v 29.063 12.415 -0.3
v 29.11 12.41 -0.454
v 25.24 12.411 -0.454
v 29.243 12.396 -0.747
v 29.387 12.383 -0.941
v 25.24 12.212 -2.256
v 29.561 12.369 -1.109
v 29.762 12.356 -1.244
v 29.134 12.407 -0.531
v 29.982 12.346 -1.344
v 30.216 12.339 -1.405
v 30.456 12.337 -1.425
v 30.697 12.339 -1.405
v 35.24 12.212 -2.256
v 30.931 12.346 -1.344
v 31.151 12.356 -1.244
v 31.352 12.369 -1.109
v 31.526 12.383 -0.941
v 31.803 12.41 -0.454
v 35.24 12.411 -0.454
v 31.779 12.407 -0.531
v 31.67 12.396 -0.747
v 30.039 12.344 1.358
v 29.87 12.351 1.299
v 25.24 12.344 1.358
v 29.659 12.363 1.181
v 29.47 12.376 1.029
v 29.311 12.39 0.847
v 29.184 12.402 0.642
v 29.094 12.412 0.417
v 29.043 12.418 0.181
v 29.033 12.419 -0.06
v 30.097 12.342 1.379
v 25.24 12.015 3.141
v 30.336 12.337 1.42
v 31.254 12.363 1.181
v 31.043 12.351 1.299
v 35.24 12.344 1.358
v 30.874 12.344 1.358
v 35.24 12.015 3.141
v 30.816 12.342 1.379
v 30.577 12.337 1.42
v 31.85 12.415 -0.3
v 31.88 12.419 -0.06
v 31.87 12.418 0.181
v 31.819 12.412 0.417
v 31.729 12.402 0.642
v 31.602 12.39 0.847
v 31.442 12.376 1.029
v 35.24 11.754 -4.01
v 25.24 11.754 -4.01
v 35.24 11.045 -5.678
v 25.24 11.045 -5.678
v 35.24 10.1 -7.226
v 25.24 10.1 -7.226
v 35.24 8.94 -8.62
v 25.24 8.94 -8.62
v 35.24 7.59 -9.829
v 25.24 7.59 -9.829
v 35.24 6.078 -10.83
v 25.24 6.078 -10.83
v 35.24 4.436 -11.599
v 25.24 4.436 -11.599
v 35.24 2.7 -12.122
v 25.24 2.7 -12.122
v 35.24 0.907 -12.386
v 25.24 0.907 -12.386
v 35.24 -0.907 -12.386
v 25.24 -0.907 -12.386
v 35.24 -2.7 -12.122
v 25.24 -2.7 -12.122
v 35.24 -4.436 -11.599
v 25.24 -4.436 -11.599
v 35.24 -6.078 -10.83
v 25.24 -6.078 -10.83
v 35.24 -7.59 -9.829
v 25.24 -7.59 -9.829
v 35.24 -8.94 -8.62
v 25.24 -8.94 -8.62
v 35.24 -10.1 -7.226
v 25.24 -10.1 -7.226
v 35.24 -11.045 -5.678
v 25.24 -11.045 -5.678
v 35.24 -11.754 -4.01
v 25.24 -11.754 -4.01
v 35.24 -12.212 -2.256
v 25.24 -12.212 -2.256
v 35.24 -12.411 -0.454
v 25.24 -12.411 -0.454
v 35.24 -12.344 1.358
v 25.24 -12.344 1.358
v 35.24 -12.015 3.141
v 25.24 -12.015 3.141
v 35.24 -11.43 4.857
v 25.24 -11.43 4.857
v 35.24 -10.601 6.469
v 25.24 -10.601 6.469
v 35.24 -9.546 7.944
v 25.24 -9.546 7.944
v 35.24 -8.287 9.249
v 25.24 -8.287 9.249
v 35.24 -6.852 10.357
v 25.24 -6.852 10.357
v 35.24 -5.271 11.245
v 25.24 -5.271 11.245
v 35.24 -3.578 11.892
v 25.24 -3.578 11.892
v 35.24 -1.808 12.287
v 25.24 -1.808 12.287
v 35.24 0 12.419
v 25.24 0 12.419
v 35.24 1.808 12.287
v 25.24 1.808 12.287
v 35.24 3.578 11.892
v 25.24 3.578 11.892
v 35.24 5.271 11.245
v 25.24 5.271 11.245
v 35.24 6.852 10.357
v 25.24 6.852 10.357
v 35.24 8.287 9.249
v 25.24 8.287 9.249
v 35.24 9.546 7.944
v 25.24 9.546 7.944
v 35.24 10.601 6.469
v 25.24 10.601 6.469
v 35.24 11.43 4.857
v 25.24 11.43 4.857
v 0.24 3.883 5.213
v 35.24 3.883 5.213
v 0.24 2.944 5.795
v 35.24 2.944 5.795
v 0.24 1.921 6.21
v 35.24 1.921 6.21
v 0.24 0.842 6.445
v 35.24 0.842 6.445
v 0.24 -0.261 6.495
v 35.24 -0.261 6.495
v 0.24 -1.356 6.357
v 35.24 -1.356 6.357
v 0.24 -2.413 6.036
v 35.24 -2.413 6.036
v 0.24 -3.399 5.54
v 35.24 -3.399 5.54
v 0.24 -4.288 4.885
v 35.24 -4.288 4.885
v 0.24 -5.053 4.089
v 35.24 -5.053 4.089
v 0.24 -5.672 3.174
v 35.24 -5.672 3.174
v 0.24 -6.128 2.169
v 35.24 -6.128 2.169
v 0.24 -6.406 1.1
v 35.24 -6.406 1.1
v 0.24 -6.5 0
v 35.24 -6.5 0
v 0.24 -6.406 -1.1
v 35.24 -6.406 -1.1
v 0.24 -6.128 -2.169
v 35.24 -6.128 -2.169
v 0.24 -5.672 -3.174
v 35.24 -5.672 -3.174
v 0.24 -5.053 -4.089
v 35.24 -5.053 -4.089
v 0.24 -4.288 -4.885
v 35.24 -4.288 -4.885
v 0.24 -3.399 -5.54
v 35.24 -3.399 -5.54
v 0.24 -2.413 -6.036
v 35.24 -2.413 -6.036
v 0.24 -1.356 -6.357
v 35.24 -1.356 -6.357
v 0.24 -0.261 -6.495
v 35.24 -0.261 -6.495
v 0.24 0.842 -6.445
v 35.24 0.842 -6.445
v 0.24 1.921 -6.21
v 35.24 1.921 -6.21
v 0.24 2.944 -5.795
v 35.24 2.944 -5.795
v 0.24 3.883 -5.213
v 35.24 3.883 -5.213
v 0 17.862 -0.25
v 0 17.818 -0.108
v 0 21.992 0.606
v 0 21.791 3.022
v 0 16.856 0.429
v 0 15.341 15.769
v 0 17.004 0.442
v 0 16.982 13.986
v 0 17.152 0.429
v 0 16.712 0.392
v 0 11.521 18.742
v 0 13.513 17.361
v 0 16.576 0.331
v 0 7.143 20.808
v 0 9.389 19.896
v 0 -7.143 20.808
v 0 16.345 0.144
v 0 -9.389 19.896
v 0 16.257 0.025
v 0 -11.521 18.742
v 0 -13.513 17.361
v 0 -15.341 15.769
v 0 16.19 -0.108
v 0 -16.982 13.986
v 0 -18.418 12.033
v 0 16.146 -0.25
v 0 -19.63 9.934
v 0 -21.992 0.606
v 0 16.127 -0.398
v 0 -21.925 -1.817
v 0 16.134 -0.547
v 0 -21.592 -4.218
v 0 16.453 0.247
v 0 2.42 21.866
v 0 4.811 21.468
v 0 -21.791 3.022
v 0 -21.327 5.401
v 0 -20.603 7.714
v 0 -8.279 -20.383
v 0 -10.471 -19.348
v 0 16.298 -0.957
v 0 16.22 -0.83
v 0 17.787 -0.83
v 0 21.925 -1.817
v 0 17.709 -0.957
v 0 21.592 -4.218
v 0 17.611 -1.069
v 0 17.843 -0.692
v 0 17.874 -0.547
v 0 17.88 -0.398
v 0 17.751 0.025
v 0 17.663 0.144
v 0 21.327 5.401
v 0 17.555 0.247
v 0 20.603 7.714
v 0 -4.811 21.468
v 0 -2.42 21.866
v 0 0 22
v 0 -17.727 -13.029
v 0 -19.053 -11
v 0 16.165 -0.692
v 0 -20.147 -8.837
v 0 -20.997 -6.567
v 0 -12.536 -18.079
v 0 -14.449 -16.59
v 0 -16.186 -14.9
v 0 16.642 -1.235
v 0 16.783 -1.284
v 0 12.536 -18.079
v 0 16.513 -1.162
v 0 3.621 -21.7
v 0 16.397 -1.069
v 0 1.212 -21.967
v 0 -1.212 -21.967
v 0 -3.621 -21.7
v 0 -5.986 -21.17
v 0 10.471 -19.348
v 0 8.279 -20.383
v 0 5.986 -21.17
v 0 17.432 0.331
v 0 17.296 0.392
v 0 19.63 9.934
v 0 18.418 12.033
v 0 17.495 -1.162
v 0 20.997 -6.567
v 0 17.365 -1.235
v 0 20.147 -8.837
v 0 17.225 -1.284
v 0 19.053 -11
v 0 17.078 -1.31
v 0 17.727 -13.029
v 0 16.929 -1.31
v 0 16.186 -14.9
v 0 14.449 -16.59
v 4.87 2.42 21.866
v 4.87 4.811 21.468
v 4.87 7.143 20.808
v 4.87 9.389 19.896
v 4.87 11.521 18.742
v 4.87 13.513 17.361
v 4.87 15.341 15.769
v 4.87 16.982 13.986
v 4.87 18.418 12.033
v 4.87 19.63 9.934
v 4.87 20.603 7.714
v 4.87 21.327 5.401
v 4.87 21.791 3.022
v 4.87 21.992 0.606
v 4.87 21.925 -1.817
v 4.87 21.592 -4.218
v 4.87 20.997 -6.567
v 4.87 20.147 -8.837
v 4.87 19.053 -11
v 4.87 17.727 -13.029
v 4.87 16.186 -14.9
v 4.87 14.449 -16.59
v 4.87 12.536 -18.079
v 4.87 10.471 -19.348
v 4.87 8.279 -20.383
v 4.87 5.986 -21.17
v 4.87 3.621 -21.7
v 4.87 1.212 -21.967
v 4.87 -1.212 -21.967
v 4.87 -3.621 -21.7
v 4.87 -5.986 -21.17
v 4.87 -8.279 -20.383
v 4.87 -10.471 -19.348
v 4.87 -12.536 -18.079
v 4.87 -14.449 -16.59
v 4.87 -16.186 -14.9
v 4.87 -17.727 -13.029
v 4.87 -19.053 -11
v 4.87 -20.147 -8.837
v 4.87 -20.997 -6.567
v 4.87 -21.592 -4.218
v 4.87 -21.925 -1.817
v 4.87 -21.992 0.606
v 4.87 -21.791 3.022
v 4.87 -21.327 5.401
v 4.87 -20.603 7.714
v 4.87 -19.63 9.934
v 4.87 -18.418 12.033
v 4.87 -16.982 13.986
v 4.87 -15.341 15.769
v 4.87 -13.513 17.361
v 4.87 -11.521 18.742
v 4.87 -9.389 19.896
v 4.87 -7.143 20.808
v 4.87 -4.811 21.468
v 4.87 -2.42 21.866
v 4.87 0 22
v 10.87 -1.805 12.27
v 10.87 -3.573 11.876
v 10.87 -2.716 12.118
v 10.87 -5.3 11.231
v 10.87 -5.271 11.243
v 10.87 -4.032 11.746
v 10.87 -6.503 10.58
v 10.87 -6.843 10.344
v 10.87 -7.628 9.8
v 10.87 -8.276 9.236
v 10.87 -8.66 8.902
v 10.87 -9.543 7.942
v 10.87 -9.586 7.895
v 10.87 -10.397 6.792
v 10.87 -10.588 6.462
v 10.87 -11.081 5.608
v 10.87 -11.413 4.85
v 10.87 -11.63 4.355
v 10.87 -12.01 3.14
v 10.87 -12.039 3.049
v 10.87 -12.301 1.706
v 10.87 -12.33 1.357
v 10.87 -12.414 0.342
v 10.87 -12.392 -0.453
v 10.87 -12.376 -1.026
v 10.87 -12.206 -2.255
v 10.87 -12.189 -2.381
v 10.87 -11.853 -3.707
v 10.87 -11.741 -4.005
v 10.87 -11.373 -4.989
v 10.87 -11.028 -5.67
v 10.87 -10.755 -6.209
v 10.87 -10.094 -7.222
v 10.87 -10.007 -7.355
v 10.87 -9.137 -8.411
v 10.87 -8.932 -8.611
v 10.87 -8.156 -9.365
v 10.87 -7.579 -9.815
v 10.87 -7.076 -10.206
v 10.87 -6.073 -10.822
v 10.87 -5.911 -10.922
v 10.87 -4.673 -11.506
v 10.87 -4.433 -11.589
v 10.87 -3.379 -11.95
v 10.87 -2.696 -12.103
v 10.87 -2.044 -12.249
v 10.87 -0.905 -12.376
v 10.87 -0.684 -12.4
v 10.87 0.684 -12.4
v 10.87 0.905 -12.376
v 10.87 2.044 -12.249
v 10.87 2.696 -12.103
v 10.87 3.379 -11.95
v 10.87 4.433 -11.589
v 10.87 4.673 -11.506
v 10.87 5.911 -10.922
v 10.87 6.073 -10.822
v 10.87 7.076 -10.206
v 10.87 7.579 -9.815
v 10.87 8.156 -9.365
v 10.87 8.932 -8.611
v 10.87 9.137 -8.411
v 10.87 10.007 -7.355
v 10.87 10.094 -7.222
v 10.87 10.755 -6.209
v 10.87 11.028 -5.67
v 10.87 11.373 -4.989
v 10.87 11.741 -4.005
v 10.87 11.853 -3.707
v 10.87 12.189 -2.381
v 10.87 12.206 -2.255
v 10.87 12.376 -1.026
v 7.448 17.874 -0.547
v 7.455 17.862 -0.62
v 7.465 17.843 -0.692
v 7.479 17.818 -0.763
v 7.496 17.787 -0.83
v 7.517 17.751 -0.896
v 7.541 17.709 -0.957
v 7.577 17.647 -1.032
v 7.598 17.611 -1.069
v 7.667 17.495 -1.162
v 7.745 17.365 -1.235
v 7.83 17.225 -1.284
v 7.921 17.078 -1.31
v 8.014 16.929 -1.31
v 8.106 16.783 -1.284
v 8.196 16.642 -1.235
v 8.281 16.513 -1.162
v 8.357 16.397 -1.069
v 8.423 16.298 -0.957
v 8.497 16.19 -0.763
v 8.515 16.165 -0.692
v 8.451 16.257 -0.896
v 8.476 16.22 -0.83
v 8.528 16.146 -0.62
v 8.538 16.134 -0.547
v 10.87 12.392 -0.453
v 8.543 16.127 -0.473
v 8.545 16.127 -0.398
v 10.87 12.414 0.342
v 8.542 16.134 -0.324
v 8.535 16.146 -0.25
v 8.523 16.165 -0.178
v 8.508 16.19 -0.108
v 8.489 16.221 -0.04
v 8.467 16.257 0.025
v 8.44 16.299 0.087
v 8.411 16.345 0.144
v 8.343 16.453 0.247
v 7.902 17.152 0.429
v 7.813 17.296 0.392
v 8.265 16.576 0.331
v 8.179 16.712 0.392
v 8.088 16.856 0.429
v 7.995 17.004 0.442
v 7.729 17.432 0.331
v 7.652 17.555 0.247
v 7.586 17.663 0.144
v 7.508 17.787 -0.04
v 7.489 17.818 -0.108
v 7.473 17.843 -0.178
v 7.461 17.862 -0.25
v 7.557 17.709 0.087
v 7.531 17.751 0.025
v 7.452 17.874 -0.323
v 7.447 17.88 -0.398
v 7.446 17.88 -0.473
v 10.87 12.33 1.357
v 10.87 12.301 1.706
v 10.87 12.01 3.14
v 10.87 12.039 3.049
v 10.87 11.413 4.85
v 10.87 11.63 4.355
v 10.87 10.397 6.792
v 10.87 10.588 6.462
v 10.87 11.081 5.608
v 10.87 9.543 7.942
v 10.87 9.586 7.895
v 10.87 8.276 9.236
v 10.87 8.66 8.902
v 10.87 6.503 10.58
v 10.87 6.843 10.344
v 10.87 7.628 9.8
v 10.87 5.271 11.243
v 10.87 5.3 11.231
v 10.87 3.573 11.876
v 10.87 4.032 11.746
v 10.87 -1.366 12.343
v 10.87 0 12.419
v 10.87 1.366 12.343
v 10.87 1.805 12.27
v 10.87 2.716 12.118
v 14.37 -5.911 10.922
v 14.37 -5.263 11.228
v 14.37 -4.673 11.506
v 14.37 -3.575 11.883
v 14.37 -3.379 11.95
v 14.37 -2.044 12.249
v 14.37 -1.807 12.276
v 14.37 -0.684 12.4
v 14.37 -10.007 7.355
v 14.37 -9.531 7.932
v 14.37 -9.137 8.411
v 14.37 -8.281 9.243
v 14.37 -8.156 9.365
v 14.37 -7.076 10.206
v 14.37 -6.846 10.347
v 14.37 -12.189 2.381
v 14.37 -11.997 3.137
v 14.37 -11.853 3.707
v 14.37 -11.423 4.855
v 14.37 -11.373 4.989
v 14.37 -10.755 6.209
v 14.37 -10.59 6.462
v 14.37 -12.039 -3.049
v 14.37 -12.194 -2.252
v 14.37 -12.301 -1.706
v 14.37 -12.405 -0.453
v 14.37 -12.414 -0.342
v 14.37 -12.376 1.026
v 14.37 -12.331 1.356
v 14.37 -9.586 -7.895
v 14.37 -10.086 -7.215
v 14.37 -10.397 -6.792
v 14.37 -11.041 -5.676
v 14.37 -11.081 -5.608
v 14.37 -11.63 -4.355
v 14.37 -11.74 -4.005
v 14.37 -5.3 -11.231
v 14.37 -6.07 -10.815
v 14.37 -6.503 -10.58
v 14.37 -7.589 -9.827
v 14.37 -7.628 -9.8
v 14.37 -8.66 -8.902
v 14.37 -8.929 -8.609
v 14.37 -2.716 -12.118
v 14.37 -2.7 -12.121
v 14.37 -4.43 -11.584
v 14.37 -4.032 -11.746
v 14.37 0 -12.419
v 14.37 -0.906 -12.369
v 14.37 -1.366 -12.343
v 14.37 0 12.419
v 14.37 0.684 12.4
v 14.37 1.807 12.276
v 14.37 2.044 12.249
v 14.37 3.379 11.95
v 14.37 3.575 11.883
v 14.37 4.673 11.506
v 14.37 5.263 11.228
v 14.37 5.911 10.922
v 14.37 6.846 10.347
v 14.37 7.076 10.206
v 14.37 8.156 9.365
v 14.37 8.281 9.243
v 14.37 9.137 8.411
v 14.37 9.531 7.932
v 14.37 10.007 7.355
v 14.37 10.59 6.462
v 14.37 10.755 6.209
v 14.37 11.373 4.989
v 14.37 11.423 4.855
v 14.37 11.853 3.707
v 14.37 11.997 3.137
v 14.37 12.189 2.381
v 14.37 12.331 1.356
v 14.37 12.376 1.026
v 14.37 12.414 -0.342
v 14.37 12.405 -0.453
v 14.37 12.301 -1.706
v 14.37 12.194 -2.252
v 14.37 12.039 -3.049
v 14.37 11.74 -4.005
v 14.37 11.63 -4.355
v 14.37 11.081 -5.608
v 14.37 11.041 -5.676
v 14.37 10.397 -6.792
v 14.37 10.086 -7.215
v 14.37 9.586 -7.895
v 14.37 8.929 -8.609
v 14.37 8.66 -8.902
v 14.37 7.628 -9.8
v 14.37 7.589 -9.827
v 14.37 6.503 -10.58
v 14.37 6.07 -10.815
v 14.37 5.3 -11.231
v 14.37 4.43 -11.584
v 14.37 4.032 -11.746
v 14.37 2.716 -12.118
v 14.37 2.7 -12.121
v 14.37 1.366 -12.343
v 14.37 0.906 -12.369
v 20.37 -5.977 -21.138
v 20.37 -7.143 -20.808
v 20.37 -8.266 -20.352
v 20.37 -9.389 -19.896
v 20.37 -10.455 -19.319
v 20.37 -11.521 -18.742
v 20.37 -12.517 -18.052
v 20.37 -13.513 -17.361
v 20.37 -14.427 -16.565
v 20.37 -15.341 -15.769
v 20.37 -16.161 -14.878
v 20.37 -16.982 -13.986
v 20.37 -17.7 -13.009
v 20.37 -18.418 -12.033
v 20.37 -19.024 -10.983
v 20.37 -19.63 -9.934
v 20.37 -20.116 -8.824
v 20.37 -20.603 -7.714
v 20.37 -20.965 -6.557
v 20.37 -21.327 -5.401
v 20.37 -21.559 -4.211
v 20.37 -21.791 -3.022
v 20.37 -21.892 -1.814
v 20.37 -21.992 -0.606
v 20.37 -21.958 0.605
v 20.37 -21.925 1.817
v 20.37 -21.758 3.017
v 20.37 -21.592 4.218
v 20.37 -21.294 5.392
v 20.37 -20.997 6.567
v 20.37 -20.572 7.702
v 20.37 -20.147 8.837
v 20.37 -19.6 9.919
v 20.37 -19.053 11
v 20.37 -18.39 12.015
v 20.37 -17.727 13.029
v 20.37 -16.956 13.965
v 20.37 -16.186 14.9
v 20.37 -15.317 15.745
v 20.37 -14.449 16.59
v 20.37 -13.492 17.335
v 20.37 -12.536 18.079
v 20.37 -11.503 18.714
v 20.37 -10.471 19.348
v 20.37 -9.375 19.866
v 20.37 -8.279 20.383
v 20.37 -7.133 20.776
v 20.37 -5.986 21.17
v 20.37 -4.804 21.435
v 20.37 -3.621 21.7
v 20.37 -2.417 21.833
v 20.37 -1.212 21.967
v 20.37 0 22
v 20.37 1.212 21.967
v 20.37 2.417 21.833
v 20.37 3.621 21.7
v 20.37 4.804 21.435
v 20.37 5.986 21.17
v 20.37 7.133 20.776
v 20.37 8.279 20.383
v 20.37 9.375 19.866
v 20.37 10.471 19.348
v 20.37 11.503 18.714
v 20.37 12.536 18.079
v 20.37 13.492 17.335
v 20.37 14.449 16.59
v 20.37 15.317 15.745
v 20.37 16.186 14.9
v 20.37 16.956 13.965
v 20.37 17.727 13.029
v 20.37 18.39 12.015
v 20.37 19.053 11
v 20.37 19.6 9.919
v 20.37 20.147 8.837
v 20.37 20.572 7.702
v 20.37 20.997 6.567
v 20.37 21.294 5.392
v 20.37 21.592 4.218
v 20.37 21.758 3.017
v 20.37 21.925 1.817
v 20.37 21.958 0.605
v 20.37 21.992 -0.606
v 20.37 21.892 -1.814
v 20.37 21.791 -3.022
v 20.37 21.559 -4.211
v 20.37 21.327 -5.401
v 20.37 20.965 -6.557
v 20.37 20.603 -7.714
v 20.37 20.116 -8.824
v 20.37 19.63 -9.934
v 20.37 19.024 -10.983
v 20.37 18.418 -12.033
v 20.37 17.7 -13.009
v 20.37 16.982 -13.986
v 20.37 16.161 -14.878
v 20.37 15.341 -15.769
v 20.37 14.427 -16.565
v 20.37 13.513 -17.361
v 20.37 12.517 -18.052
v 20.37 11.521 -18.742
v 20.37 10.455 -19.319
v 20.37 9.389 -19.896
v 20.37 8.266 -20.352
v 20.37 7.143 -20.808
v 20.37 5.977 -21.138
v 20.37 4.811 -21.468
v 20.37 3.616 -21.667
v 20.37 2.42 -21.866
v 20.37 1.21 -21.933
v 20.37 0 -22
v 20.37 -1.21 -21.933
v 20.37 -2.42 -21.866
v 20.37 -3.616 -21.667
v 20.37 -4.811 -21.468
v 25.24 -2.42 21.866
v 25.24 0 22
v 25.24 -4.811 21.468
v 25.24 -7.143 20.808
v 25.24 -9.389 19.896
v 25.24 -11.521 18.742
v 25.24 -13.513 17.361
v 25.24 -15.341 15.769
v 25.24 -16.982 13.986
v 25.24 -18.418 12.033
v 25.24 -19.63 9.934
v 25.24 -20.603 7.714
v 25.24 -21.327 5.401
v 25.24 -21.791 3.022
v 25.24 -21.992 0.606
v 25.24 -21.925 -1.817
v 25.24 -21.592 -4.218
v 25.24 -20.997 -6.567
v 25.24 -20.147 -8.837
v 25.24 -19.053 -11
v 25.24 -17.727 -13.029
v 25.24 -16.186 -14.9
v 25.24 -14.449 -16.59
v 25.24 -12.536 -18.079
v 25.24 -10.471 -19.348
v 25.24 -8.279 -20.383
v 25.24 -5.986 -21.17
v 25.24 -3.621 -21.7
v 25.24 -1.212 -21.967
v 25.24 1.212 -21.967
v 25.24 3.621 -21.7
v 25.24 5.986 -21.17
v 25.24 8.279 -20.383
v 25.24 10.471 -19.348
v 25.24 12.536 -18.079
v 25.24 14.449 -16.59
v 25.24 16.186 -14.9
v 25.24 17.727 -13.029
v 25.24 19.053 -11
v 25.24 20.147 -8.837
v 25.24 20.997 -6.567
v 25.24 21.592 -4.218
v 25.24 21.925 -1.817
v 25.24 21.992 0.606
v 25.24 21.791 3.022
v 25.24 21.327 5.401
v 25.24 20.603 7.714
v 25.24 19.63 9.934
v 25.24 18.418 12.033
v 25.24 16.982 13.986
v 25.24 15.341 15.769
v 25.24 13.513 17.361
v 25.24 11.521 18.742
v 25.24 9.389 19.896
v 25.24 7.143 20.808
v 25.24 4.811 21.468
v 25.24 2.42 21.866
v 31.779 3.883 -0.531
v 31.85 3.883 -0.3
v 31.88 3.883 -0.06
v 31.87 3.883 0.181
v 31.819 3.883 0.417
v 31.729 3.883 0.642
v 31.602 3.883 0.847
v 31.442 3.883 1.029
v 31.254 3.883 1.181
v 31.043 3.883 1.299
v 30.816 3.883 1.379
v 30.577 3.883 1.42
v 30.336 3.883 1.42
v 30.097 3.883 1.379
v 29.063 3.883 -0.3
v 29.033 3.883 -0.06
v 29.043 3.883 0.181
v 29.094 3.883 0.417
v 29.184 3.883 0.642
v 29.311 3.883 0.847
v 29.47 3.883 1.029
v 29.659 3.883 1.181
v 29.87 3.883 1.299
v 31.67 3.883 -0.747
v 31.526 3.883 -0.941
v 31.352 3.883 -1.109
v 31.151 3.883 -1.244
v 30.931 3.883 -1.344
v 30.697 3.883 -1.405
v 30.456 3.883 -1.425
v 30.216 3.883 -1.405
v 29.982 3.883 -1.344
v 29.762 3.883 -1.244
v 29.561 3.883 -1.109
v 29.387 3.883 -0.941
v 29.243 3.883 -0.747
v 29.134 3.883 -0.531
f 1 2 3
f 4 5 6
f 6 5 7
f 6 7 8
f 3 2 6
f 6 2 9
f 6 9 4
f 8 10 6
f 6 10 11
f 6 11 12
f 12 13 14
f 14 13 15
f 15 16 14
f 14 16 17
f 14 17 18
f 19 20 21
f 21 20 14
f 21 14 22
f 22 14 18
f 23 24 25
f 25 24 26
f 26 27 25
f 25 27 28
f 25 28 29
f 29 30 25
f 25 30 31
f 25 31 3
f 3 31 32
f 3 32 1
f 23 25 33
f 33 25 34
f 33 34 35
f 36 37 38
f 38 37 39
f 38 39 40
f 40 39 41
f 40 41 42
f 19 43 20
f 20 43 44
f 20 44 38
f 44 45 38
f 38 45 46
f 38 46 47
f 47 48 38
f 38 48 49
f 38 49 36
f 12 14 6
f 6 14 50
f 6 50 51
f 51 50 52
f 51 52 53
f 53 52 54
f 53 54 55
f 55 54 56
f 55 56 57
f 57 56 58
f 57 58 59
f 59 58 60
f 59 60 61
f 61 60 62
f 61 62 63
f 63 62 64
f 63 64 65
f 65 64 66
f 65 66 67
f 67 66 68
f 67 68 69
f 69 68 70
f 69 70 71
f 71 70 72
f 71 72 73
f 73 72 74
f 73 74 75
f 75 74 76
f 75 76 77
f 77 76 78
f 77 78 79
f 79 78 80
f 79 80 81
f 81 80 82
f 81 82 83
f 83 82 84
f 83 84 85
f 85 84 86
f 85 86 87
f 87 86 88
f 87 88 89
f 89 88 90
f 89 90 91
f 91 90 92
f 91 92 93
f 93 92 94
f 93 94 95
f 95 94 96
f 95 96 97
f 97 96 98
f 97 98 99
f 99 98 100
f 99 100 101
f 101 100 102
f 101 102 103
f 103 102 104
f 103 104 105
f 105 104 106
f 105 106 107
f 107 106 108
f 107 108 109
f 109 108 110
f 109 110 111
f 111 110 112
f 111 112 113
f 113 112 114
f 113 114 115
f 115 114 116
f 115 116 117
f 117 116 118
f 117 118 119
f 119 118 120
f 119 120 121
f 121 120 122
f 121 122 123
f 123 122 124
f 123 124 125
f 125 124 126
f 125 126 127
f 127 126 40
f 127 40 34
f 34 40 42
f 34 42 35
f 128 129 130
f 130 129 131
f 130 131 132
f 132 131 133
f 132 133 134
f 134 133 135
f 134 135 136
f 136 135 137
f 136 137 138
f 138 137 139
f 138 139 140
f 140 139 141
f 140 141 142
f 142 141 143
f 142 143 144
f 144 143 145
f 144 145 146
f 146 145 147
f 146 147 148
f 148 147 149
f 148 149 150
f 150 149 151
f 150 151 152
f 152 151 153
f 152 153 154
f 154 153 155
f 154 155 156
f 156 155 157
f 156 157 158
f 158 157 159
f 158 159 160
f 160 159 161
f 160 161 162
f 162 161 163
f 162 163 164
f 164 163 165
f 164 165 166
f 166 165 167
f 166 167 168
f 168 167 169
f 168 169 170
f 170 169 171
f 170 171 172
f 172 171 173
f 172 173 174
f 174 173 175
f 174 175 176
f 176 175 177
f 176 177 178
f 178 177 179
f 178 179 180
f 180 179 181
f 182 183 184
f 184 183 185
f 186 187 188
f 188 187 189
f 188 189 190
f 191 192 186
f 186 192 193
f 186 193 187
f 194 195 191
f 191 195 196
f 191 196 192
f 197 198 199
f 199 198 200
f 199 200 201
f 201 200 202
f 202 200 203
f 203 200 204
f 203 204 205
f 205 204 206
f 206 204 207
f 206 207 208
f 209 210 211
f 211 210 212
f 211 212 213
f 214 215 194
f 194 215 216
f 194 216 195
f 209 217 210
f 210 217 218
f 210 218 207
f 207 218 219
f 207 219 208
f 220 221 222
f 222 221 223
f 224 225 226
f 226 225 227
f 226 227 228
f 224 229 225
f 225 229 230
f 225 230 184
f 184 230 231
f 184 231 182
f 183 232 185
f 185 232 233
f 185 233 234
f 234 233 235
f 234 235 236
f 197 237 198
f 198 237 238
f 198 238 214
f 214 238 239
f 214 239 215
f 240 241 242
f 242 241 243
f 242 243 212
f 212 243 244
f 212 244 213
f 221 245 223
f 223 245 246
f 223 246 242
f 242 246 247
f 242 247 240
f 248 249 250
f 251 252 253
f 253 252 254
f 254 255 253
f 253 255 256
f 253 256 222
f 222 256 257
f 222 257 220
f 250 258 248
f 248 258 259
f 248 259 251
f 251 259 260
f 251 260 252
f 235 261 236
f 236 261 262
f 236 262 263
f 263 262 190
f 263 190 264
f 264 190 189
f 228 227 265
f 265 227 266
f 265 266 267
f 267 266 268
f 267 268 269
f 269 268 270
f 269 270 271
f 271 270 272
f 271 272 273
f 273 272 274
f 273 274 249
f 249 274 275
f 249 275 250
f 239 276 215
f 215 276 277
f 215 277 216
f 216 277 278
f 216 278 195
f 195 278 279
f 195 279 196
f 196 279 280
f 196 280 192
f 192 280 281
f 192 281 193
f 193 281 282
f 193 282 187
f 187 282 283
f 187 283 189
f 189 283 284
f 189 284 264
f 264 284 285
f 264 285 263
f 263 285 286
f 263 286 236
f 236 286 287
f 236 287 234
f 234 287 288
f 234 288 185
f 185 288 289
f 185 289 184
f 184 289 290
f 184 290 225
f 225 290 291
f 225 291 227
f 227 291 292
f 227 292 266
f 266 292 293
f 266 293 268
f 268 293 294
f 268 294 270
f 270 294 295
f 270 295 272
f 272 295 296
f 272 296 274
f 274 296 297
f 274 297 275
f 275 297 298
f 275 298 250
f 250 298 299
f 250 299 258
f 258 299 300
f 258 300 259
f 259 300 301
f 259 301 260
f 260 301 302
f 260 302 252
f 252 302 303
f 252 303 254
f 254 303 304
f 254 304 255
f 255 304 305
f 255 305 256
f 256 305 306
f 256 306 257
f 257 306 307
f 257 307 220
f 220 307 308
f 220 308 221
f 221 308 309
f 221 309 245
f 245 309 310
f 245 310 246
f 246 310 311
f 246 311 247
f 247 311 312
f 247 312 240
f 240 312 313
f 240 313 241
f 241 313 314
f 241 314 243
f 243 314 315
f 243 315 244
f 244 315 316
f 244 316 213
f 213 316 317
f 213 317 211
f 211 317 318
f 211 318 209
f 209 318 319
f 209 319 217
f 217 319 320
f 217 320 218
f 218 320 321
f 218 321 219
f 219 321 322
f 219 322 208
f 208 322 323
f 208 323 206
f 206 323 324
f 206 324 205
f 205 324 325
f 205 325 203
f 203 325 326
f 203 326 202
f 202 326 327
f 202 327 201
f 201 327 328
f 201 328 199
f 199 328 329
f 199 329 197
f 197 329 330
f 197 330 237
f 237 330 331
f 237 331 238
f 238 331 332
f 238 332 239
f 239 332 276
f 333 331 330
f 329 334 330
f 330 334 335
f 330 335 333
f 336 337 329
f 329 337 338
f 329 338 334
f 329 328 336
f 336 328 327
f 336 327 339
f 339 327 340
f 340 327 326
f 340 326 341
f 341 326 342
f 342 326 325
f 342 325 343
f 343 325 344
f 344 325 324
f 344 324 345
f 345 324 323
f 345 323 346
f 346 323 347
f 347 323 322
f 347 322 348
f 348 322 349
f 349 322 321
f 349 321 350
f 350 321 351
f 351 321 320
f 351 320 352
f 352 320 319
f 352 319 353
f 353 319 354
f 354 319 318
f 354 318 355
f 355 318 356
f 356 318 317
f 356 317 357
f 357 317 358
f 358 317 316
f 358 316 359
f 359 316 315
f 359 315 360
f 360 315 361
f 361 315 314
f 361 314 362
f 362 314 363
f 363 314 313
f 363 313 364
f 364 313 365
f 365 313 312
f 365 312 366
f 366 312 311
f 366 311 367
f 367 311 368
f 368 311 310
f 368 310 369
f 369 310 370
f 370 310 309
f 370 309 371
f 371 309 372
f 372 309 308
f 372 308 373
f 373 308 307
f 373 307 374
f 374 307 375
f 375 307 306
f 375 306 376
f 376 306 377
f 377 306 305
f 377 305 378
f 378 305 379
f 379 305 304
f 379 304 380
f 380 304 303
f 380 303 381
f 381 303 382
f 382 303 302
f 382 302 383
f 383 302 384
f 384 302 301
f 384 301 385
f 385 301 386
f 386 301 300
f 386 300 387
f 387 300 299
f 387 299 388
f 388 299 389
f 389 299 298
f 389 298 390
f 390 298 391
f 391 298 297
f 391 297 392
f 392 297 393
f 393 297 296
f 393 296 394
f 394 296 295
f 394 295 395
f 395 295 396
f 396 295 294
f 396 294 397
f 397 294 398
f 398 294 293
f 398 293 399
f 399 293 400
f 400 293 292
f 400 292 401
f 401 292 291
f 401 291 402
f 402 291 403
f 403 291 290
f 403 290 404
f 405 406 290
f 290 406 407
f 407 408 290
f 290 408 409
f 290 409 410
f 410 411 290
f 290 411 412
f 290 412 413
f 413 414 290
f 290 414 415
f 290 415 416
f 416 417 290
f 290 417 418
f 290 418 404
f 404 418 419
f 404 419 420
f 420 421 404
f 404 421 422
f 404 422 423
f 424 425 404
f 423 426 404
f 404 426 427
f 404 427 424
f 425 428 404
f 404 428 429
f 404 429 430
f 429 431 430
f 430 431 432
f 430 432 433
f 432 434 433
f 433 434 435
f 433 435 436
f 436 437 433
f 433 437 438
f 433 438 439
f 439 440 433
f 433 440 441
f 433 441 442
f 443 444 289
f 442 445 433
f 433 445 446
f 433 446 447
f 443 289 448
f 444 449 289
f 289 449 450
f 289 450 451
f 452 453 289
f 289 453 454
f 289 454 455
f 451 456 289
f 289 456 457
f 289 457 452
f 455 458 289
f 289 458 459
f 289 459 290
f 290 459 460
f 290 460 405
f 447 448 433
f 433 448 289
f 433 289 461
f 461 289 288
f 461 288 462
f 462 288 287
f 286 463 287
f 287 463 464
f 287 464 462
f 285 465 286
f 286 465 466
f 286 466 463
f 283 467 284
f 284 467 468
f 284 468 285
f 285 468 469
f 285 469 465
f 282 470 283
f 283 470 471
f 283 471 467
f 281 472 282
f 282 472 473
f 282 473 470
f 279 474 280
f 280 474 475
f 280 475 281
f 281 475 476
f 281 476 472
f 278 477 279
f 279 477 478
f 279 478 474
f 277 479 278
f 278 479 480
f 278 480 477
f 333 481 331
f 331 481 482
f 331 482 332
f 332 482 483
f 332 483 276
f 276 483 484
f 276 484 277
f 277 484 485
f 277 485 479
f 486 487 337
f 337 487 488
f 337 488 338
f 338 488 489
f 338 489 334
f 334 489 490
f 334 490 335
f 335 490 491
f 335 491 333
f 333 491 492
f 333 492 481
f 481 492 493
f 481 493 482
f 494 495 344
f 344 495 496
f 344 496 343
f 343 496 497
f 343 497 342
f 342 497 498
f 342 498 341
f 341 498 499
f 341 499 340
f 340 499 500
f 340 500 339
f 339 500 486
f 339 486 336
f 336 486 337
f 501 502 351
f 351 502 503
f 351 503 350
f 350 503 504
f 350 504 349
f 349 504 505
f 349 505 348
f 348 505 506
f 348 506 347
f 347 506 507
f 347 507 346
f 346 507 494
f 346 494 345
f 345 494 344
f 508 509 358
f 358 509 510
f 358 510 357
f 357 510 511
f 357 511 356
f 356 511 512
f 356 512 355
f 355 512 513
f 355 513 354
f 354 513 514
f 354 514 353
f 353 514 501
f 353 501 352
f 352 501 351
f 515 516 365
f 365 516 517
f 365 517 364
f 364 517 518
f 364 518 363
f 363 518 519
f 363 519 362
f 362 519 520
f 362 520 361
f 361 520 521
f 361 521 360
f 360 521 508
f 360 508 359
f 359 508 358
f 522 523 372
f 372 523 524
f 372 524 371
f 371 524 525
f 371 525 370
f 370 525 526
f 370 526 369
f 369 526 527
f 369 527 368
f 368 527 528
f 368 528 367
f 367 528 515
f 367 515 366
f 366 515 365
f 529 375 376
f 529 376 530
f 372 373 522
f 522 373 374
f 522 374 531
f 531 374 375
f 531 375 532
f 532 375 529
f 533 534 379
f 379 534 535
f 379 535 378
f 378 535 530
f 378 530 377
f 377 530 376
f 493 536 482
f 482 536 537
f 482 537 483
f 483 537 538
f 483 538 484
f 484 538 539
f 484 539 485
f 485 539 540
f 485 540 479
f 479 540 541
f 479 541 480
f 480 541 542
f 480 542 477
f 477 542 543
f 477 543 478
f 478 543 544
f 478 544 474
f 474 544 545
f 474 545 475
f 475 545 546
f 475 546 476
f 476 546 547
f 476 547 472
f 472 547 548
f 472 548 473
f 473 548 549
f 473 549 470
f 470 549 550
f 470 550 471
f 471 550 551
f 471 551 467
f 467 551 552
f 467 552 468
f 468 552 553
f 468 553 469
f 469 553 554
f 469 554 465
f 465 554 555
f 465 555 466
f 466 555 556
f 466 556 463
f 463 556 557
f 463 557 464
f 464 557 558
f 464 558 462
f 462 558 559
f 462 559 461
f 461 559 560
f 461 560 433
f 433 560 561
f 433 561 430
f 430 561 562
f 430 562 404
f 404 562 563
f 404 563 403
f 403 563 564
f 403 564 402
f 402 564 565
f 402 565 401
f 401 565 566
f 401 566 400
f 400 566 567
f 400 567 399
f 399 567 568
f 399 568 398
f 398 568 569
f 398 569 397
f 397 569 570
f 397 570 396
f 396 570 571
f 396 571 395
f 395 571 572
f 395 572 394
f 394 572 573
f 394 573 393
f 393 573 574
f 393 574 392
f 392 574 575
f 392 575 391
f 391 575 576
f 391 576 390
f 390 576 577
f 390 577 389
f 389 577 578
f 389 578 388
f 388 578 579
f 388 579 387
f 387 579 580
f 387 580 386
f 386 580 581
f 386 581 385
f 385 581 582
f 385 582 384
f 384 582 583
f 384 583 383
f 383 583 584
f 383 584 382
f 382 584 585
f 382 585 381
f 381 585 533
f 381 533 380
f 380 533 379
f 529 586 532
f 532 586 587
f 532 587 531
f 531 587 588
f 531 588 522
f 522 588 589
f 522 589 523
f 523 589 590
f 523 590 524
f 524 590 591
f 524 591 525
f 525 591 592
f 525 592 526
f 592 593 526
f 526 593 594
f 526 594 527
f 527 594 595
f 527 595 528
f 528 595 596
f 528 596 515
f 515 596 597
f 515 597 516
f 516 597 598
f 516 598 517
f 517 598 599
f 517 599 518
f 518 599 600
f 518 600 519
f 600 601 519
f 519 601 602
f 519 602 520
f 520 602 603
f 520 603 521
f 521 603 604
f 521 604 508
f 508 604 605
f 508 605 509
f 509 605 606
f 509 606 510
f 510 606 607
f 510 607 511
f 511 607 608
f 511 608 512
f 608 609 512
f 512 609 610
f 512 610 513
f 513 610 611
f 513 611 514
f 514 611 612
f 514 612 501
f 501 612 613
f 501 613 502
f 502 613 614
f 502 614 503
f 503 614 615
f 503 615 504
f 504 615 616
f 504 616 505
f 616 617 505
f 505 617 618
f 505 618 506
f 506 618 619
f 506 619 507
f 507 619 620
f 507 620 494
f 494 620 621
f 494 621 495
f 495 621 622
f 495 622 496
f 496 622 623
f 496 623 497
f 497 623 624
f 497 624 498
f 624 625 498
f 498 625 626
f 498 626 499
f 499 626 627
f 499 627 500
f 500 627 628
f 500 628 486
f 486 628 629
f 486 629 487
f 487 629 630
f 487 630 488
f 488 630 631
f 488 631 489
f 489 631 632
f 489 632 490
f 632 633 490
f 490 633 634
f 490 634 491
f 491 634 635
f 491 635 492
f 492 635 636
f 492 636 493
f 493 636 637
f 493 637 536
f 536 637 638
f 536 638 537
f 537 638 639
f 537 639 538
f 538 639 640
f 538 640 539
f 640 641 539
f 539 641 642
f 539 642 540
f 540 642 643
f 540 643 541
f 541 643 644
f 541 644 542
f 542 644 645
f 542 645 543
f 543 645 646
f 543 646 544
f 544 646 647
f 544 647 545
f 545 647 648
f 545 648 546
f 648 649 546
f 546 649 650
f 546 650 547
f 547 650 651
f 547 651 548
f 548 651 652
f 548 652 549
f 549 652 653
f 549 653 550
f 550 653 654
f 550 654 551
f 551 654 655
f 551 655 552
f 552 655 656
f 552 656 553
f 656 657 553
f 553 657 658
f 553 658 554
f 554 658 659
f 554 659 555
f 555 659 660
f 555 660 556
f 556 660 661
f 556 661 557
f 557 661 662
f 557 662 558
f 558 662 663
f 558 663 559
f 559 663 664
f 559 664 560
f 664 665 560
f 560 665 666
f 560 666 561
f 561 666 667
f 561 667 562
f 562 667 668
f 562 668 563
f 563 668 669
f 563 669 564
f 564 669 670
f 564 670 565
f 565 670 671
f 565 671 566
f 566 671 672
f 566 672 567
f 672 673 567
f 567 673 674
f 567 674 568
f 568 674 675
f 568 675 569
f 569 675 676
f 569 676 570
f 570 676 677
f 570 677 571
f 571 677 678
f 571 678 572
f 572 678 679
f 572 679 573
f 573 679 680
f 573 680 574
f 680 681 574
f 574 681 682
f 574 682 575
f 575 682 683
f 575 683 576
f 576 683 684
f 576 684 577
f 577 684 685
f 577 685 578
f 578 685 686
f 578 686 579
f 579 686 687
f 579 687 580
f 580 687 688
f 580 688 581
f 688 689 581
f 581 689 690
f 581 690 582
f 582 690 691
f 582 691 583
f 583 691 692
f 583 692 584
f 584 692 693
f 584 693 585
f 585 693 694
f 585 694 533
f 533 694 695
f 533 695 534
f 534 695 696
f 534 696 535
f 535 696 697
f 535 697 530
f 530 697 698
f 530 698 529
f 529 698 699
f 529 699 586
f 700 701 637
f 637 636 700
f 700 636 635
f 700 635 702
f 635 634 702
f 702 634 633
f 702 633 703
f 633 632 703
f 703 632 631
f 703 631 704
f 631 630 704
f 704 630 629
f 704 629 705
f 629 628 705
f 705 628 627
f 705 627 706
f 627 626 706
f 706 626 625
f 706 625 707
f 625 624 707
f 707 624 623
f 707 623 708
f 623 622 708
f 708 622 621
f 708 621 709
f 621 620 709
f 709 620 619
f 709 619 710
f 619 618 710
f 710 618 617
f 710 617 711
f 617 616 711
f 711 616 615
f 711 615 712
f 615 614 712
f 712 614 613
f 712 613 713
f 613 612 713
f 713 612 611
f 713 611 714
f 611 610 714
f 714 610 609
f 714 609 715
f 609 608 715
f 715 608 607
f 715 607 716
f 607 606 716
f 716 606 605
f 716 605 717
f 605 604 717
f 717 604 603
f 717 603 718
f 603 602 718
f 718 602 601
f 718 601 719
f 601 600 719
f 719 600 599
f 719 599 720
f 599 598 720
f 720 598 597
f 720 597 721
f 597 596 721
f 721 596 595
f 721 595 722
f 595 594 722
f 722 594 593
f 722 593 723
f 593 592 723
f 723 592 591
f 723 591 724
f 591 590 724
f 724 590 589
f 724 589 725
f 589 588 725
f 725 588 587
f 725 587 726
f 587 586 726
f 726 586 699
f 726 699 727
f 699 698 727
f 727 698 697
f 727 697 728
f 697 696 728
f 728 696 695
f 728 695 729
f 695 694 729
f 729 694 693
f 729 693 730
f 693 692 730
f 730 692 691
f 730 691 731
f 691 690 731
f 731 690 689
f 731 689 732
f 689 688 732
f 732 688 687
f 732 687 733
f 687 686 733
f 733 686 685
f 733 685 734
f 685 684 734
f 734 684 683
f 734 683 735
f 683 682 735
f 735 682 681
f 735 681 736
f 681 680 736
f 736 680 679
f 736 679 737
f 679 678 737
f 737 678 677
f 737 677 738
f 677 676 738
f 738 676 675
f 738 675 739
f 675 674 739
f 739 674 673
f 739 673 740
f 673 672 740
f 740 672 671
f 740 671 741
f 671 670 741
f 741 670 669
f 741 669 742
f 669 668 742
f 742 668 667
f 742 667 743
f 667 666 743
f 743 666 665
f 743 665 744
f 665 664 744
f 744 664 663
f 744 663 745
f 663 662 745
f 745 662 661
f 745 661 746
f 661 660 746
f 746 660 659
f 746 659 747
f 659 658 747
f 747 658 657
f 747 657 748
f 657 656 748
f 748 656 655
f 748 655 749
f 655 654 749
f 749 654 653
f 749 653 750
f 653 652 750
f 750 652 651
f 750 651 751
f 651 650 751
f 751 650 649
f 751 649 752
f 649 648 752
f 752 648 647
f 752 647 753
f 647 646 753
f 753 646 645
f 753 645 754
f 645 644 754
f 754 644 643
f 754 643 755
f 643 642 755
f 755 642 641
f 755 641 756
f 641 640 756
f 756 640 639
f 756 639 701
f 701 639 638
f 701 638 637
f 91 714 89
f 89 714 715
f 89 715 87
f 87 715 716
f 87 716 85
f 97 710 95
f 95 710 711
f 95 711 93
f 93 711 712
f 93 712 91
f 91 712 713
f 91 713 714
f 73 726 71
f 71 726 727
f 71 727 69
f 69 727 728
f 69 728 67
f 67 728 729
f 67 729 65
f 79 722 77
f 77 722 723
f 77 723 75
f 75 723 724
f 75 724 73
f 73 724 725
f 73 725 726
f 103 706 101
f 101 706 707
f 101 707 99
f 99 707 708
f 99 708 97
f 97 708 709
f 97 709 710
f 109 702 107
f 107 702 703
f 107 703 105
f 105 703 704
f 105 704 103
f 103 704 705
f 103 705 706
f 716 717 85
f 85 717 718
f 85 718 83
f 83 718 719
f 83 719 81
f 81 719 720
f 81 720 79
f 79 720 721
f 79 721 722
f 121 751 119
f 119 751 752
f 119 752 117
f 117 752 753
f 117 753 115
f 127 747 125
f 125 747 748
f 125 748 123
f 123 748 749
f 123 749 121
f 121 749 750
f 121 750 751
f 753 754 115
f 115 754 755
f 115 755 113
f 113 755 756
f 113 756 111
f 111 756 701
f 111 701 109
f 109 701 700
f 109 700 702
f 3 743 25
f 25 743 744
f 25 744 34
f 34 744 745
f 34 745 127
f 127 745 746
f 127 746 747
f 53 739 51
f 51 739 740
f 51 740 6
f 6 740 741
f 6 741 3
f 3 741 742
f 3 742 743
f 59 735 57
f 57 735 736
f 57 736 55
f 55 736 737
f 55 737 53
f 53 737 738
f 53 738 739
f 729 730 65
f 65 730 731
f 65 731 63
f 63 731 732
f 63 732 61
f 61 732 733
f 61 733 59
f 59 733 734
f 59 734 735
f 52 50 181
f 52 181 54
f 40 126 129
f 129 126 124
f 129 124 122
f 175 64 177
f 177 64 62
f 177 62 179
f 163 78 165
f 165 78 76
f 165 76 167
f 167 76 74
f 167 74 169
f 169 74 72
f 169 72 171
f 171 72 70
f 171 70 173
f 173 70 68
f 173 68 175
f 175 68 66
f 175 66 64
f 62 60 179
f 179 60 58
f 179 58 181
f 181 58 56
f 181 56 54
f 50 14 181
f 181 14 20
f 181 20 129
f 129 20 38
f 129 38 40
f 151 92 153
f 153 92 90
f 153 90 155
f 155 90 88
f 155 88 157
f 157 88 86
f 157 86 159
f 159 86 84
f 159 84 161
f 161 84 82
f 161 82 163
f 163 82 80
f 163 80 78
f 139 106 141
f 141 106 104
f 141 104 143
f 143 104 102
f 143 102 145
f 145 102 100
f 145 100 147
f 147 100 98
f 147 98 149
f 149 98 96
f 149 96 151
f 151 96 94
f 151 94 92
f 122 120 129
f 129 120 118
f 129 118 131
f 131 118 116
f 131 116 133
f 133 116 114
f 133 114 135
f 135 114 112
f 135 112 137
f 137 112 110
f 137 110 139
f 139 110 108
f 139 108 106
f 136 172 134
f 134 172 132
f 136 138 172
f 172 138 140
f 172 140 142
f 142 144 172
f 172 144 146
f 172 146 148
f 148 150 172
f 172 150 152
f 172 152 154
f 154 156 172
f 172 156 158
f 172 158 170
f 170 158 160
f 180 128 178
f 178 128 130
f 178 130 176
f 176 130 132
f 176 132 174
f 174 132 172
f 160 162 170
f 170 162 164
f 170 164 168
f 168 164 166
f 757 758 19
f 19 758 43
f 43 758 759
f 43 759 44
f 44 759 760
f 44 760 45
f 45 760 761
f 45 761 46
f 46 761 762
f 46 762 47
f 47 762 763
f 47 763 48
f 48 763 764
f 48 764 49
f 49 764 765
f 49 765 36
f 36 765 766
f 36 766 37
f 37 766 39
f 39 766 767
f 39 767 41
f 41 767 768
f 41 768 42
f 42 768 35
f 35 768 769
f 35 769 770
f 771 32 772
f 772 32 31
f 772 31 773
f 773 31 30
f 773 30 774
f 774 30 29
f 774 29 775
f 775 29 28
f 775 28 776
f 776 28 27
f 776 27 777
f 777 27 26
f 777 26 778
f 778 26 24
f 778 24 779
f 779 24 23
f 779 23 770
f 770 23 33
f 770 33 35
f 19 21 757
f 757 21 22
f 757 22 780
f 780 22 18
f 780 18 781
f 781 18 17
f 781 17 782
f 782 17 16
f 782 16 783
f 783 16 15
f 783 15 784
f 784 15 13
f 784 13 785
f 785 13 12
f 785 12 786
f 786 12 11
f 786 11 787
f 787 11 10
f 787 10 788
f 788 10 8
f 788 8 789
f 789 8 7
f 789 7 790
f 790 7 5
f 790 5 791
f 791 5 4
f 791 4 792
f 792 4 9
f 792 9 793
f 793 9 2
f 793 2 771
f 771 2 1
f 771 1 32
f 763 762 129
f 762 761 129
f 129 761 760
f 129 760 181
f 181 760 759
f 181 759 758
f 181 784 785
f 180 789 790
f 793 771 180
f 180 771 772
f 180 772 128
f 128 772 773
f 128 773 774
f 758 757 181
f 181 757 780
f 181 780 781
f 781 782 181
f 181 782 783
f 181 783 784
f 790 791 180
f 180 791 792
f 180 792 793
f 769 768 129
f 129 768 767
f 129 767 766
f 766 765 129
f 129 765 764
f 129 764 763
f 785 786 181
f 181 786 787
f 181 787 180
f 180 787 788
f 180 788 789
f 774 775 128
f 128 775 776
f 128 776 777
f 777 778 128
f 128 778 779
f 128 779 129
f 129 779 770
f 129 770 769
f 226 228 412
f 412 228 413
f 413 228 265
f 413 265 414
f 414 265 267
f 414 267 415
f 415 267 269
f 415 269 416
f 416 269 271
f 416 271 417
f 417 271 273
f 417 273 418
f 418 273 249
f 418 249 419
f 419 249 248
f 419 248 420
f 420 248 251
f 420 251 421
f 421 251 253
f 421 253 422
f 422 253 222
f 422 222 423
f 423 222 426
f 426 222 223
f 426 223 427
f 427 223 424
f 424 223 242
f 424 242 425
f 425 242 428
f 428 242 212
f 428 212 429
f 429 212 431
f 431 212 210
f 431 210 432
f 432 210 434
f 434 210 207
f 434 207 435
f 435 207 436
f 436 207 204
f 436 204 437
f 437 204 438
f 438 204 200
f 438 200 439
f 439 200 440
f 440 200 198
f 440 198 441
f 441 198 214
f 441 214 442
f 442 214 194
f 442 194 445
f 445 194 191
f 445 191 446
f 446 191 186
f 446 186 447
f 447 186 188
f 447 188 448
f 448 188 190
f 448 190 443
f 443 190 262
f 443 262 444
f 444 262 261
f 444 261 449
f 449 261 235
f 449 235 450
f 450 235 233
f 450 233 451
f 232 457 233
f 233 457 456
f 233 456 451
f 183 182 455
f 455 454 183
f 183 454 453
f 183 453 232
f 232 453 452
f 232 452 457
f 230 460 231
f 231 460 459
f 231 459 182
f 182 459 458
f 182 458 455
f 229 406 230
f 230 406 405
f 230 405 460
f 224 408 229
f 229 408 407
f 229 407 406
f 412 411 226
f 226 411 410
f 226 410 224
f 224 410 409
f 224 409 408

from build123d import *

# Parameters (mm, degrees)
SKETCH_2_R               = 1.385
CUT_EXTRUDE_1_DEPTH      = 10
SKETCH_3_R               = 6.5
CUT_EXTRUDE_2_DEPTH      = 35
CUT_EXTRUDE_3_DEPTH      = 2
CUT_EXTRUDE_3_DEPTH_BACK = 10
SKETCH_5_R               = 1.425
SKETCH_11_W              = 11.431167052
SKETCH_11_H              = 3.4
EXTRUDE_3_DEPTH          = 35
SKETCH_13_R              = 1.425
CUT_EXTRUDE_4_DEPTH      = 16
SKETCH_14_R              = 0.877374271
CUT_EXTRUDE_5_DEPTH      = 12


with BuildPart() as part:
    # 草圖1 → 旋轉1 (revolve)
    with BuildSketch(Plane.XY, mode=Mode.PRIVATE) as revolve_1_sk:
        Polygon((0, 0), (0, 22), (4.87, 22), (10.87, 12.418858447), (14.37, 12.418858447), (20.37, 22), (25.24, 22), (25.24, 12.418858447), (35.24, 12.418858447), (35.24, 0), align=None)
    revolve(revolve_1_sk.sketch.rotate(Axis((-743.15639781, 0, 0), (1, 0, 0)), 90), axis=Axis((-743.15639781, 0, 0), (1, 0, 0)))

    # 草圖2 → 除料-伸長1 (cut)
    with BuildSketch(Plane(origin=(0, 12, 0), x_dir=(1, 0, 0), z_dir=(0, 1, 0))):
        with Locations(Location((30.456485429, 0, 0), (0, 0, 270))):
            Circle(SKETCH_2_R)
    extrude(amount=-CUT_EXTRUDE_1_DEPTH, mode=Mode.SUBTRACT)

    # 草圖3 → 除料-伸長2 (cut)
    with BuildSketch(Plane(origin=(35.24, 0, 0), x_dir=(0, 0, -1), z_dir=(1, 0, 0))):
        Circle(SKETCH_3_R)
    extrude(amount=-CUT_EXTRUDE_2_DEPTH, mode=Mode.SUBTRACT)

    # 草圖5 → 除料-伸長3 (cut, two sides: drawn at the far end of the back side and taken through both)
    with BuildSketch(Plane(origin=(0, 12, 0), x_dir=(1, 0, 0), z_dir=(0, 1, 0)).offset(-CUT_EXTRUDE_3_DEPTH_BACK)):
        with Locations(Location((30.456485429, 0, 0), (0, 0, 90))):
            Circle(SKETCH_5_R)
    extrude(amount=CUT_EXTRUDE_3_DEPTH + CUT_EXTRUDE_3_DEPTH_BACK, mode=Mode.SUBTRACT)

    # 草圖11 → 填料-伸長3 (add)
    with BuildSketch(Plane(origin=(35.24, 0, 0), x_dir=(0, 0, -1), z_dir=(1, 0, 0))):
        with Locations((-0.190572982, 5.582537257)):
            Rectangle(SKETCH_11_W, SKETCH_11_H)
    extrude(amount=-EXTRUDE_3_DEPTH)

    # 草圖13 → 除料-伸長4 (cut)
    with BuildSketch(Plane(origin=(0, 12, 0), x_dir=(1, 0, 0), z_dir=(0, 1, 0))):
        with Locations(Location((30.456485429, 0, 0), (0, 0, 90))):
            Circle(SKETCH_13_R)
    extrude(amount=-CUT_EXTRUDE_4_DEPTH, mode=Mode.SUBTRACT)

    # 草圖14 → 除料-伸長5 (cut)
    with BuildSketch(Plane.ZY):
        with Locations((-0.435299539, 17.00388826)):
            Circle(SKETCH_14_R)
    extrude(amount=-CUT_EXTRUDE_5_DEPTH, mode=Mode.SUBTRACT)


solid = part.part
